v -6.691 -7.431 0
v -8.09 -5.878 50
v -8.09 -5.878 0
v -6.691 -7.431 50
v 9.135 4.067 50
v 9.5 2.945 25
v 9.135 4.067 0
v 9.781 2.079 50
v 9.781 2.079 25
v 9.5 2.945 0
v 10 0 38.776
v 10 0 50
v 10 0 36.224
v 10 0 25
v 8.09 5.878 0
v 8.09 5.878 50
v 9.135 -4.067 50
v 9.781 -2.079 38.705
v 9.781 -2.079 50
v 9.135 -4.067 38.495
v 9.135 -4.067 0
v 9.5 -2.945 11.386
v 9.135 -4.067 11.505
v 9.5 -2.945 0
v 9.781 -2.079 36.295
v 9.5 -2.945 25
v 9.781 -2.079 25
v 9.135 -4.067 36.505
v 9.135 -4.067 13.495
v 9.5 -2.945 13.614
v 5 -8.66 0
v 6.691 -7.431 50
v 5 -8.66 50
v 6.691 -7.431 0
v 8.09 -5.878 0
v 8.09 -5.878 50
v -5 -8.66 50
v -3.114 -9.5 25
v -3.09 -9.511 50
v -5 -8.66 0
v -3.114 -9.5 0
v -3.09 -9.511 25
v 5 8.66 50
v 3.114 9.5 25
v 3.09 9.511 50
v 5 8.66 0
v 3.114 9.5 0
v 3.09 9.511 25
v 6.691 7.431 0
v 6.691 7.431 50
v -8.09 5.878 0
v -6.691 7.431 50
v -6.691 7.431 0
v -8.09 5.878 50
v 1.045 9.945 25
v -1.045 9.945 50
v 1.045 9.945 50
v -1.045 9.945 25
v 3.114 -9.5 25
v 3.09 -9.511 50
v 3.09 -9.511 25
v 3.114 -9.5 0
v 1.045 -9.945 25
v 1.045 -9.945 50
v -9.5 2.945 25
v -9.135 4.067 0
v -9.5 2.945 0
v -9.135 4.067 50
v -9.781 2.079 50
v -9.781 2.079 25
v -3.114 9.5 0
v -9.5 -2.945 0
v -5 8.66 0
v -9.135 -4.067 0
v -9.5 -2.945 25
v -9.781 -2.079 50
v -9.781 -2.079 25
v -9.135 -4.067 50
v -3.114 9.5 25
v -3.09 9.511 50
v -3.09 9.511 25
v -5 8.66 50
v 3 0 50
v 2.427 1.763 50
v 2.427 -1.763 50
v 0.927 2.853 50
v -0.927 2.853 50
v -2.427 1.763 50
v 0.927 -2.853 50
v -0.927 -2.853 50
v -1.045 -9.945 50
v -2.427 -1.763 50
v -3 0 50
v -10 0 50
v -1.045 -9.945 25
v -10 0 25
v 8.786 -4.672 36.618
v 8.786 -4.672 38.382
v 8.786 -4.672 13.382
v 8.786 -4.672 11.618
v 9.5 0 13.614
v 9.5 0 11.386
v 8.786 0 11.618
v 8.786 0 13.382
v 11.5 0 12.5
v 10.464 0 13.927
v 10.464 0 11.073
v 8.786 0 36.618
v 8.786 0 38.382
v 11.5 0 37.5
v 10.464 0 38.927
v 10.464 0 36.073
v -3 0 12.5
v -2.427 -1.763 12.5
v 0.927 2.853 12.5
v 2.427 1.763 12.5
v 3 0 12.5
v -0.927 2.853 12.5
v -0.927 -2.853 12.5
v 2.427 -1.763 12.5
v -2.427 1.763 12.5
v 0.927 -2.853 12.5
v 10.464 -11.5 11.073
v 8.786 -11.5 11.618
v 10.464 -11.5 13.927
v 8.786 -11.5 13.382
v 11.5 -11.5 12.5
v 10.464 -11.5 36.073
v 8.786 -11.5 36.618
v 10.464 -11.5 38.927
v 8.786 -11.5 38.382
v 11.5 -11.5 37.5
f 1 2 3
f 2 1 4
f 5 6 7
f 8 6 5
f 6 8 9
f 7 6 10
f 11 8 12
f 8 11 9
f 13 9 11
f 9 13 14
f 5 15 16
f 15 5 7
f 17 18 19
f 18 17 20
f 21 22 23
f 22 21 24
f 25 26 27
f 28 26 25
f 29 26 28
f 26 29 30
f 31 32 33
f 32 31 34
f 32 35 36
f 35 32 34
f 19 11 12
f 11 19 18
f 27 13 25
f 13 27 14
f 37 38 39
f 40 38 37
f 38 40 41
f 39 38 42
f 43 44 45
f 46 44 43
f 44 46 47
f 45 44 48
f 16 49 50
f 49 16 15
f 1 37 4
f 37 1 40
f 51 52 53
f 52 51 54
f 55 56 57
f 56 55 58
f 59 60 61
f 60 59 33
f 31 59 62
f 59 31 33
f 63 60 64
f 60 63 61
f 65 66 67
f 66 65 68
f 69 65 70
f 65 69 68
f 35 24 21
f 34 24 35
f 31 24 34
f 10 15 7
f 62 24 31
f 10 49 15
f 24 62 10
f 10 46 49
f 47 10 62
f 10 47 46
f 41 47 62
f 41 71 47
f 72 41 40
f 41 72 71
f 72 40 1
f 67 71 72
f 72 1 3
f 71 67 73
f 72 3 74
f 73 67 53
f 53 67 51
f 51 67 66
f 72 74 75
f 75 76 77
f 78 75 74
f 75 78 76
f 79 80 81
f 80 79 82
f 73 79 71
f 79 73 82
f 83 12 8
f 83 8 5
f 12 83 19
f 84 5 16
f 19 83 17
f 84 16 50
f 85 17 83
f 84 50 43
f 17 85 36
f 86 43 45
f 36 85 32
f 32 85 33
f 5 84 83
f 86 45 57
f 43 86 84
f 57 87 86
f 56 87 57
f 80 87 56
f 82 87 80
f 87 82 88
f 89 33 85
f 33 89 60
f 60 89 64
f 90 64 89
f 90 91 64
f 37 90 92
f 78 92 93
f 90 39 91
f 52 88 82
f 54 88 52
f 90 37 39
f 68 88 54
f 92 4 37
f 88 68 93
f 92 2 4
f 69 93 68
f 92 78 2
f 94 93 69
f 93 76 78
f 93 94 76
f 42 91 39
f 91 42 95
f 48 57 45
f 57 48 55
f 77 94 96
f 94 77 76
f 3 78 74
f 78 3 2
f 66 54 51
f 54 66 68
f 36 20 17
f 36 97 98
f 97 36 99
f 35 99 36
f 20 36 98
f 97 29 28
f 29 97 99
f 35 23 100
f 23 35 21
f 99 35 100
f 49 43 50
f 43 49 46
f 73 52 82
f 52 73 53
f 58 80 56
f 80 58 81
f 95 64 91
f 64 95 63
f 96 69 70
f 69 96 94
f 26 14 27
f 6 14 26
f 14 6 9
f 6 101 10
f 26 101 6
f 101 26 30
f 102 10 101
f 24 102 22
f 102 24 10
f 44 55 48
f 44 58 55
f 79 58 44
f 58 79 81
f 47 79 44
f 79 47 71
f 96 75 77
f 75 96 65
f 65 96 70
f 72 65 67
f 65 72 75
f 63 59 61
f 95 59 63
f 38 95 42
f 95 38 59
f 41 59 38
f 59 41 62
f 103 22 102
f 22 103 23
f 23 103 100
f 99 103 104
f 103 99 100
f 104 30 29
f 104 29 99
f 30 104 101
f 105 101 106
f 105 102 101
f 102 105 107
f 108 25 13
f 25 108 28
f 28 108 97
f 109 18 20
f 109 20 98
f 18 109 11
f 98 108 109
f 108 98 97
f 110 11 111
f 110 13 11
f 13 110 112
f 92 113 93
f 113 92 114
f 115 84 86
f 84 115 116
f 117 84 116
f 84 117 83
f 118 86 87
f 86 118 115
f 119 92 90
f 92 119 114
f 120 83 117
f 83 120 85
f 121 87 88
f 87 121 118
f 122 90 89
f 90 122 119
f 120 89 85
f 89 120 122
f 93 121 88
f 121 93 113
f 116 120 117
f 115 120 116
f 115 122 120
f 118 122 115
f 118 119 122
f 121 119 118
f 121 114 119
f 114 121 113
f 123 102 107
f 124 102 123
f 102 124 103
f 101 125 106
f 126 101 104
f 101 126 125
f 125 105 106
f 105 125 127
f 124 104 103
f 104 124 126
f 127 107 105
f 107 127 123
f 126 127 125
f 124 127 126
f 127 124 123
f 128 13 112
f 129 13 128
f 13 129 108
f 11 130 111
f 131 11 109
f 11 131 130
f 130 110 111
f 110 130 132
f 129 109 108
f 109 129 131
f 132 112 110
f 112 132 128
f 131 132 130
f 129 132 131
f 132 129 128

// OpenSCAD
// Parameters
flexible_coupling_length = 50; // Total length of the coupling
flexible_coupling_diameter = 20; // Diameter of the coupling
central_section_diameter = 18; // Diameter of the central section
slit_width = 1; // Width of the slits
slit_depth = 8; // Depth of the slits
hole_diameter = 6; // Diameter of the shaft holes
threaded_hole_diameter = 3; // Diameter of the threaded holes
screw_diameter = 3; // Diameter of the fastening screws
screw_length = 10; // Length of the fastening screws

// Flexible Coupling Body
module flexible_coupling_body() {
    difference() {
        // Main cylindrical body
        union() {
            cylinder(flexible_coupling_length, flexible_coupling_diameter / 2, flexible_coupling_diameter / 2);
            translate([0, 0, flexible_coupling_length / 2 - flexible_coupling_length / 4])
                cylinder(flexible_coupling_length / 2, central_section_diameter / 2, central_section_diameter / 2);
        }
        
        // Shaft holes
        translate([0, 0, flexible_coupling_length / 4])
            cylinder(flexible_coupling_length, hole_diameter / 2, hole_diameter / 2);
        
        // Slits for flexibility
        for (i = [0 : 90 : 270]) {
            rotate([0, 0, i])
                translate([flexible_coupling_diameter / 2, 0, 0])
                    cube([slit_width, slit_depth, flexible_coupling_length], center = true);
        }
        
        // Threaded holes for screws
        for (i = [flexible_coupling_length / 4, flexible_coupling_length * 3 / 4]) {
            translate([flexible_coupling_diameter / 2, 0, i])
                rotate([90, 0, 0])
                    cylinder(flexible_coupling_length, threaded_hole_diameter / 2, threaded_hole_diameter / 2);
        }
    }
}

// Fastening Screw
module fastening_screw() {
    union() {
        cylinder(screw_length, screw_diameter / 2, screw_diameter / 2);
        translate([0, 0, screw_length])
            cylinder(screw_diameter / 2, screw_diameter / 2, screw_diameter / 2);
    }
}

// Assembly
module assembly() {
    // Flexible coupling body
    flexible_coupling_body();
    
    // Fastening screws
    for (i = [flexible_coupling_length / 4, flexible_coupling_length * 3 / 4]) {
        translate([flexible_coupling_diameter / 2, 0, i])
            rotate([90, 0, 0])
                fastening_screw();
    }
}

// Render the assembly
assembly();
